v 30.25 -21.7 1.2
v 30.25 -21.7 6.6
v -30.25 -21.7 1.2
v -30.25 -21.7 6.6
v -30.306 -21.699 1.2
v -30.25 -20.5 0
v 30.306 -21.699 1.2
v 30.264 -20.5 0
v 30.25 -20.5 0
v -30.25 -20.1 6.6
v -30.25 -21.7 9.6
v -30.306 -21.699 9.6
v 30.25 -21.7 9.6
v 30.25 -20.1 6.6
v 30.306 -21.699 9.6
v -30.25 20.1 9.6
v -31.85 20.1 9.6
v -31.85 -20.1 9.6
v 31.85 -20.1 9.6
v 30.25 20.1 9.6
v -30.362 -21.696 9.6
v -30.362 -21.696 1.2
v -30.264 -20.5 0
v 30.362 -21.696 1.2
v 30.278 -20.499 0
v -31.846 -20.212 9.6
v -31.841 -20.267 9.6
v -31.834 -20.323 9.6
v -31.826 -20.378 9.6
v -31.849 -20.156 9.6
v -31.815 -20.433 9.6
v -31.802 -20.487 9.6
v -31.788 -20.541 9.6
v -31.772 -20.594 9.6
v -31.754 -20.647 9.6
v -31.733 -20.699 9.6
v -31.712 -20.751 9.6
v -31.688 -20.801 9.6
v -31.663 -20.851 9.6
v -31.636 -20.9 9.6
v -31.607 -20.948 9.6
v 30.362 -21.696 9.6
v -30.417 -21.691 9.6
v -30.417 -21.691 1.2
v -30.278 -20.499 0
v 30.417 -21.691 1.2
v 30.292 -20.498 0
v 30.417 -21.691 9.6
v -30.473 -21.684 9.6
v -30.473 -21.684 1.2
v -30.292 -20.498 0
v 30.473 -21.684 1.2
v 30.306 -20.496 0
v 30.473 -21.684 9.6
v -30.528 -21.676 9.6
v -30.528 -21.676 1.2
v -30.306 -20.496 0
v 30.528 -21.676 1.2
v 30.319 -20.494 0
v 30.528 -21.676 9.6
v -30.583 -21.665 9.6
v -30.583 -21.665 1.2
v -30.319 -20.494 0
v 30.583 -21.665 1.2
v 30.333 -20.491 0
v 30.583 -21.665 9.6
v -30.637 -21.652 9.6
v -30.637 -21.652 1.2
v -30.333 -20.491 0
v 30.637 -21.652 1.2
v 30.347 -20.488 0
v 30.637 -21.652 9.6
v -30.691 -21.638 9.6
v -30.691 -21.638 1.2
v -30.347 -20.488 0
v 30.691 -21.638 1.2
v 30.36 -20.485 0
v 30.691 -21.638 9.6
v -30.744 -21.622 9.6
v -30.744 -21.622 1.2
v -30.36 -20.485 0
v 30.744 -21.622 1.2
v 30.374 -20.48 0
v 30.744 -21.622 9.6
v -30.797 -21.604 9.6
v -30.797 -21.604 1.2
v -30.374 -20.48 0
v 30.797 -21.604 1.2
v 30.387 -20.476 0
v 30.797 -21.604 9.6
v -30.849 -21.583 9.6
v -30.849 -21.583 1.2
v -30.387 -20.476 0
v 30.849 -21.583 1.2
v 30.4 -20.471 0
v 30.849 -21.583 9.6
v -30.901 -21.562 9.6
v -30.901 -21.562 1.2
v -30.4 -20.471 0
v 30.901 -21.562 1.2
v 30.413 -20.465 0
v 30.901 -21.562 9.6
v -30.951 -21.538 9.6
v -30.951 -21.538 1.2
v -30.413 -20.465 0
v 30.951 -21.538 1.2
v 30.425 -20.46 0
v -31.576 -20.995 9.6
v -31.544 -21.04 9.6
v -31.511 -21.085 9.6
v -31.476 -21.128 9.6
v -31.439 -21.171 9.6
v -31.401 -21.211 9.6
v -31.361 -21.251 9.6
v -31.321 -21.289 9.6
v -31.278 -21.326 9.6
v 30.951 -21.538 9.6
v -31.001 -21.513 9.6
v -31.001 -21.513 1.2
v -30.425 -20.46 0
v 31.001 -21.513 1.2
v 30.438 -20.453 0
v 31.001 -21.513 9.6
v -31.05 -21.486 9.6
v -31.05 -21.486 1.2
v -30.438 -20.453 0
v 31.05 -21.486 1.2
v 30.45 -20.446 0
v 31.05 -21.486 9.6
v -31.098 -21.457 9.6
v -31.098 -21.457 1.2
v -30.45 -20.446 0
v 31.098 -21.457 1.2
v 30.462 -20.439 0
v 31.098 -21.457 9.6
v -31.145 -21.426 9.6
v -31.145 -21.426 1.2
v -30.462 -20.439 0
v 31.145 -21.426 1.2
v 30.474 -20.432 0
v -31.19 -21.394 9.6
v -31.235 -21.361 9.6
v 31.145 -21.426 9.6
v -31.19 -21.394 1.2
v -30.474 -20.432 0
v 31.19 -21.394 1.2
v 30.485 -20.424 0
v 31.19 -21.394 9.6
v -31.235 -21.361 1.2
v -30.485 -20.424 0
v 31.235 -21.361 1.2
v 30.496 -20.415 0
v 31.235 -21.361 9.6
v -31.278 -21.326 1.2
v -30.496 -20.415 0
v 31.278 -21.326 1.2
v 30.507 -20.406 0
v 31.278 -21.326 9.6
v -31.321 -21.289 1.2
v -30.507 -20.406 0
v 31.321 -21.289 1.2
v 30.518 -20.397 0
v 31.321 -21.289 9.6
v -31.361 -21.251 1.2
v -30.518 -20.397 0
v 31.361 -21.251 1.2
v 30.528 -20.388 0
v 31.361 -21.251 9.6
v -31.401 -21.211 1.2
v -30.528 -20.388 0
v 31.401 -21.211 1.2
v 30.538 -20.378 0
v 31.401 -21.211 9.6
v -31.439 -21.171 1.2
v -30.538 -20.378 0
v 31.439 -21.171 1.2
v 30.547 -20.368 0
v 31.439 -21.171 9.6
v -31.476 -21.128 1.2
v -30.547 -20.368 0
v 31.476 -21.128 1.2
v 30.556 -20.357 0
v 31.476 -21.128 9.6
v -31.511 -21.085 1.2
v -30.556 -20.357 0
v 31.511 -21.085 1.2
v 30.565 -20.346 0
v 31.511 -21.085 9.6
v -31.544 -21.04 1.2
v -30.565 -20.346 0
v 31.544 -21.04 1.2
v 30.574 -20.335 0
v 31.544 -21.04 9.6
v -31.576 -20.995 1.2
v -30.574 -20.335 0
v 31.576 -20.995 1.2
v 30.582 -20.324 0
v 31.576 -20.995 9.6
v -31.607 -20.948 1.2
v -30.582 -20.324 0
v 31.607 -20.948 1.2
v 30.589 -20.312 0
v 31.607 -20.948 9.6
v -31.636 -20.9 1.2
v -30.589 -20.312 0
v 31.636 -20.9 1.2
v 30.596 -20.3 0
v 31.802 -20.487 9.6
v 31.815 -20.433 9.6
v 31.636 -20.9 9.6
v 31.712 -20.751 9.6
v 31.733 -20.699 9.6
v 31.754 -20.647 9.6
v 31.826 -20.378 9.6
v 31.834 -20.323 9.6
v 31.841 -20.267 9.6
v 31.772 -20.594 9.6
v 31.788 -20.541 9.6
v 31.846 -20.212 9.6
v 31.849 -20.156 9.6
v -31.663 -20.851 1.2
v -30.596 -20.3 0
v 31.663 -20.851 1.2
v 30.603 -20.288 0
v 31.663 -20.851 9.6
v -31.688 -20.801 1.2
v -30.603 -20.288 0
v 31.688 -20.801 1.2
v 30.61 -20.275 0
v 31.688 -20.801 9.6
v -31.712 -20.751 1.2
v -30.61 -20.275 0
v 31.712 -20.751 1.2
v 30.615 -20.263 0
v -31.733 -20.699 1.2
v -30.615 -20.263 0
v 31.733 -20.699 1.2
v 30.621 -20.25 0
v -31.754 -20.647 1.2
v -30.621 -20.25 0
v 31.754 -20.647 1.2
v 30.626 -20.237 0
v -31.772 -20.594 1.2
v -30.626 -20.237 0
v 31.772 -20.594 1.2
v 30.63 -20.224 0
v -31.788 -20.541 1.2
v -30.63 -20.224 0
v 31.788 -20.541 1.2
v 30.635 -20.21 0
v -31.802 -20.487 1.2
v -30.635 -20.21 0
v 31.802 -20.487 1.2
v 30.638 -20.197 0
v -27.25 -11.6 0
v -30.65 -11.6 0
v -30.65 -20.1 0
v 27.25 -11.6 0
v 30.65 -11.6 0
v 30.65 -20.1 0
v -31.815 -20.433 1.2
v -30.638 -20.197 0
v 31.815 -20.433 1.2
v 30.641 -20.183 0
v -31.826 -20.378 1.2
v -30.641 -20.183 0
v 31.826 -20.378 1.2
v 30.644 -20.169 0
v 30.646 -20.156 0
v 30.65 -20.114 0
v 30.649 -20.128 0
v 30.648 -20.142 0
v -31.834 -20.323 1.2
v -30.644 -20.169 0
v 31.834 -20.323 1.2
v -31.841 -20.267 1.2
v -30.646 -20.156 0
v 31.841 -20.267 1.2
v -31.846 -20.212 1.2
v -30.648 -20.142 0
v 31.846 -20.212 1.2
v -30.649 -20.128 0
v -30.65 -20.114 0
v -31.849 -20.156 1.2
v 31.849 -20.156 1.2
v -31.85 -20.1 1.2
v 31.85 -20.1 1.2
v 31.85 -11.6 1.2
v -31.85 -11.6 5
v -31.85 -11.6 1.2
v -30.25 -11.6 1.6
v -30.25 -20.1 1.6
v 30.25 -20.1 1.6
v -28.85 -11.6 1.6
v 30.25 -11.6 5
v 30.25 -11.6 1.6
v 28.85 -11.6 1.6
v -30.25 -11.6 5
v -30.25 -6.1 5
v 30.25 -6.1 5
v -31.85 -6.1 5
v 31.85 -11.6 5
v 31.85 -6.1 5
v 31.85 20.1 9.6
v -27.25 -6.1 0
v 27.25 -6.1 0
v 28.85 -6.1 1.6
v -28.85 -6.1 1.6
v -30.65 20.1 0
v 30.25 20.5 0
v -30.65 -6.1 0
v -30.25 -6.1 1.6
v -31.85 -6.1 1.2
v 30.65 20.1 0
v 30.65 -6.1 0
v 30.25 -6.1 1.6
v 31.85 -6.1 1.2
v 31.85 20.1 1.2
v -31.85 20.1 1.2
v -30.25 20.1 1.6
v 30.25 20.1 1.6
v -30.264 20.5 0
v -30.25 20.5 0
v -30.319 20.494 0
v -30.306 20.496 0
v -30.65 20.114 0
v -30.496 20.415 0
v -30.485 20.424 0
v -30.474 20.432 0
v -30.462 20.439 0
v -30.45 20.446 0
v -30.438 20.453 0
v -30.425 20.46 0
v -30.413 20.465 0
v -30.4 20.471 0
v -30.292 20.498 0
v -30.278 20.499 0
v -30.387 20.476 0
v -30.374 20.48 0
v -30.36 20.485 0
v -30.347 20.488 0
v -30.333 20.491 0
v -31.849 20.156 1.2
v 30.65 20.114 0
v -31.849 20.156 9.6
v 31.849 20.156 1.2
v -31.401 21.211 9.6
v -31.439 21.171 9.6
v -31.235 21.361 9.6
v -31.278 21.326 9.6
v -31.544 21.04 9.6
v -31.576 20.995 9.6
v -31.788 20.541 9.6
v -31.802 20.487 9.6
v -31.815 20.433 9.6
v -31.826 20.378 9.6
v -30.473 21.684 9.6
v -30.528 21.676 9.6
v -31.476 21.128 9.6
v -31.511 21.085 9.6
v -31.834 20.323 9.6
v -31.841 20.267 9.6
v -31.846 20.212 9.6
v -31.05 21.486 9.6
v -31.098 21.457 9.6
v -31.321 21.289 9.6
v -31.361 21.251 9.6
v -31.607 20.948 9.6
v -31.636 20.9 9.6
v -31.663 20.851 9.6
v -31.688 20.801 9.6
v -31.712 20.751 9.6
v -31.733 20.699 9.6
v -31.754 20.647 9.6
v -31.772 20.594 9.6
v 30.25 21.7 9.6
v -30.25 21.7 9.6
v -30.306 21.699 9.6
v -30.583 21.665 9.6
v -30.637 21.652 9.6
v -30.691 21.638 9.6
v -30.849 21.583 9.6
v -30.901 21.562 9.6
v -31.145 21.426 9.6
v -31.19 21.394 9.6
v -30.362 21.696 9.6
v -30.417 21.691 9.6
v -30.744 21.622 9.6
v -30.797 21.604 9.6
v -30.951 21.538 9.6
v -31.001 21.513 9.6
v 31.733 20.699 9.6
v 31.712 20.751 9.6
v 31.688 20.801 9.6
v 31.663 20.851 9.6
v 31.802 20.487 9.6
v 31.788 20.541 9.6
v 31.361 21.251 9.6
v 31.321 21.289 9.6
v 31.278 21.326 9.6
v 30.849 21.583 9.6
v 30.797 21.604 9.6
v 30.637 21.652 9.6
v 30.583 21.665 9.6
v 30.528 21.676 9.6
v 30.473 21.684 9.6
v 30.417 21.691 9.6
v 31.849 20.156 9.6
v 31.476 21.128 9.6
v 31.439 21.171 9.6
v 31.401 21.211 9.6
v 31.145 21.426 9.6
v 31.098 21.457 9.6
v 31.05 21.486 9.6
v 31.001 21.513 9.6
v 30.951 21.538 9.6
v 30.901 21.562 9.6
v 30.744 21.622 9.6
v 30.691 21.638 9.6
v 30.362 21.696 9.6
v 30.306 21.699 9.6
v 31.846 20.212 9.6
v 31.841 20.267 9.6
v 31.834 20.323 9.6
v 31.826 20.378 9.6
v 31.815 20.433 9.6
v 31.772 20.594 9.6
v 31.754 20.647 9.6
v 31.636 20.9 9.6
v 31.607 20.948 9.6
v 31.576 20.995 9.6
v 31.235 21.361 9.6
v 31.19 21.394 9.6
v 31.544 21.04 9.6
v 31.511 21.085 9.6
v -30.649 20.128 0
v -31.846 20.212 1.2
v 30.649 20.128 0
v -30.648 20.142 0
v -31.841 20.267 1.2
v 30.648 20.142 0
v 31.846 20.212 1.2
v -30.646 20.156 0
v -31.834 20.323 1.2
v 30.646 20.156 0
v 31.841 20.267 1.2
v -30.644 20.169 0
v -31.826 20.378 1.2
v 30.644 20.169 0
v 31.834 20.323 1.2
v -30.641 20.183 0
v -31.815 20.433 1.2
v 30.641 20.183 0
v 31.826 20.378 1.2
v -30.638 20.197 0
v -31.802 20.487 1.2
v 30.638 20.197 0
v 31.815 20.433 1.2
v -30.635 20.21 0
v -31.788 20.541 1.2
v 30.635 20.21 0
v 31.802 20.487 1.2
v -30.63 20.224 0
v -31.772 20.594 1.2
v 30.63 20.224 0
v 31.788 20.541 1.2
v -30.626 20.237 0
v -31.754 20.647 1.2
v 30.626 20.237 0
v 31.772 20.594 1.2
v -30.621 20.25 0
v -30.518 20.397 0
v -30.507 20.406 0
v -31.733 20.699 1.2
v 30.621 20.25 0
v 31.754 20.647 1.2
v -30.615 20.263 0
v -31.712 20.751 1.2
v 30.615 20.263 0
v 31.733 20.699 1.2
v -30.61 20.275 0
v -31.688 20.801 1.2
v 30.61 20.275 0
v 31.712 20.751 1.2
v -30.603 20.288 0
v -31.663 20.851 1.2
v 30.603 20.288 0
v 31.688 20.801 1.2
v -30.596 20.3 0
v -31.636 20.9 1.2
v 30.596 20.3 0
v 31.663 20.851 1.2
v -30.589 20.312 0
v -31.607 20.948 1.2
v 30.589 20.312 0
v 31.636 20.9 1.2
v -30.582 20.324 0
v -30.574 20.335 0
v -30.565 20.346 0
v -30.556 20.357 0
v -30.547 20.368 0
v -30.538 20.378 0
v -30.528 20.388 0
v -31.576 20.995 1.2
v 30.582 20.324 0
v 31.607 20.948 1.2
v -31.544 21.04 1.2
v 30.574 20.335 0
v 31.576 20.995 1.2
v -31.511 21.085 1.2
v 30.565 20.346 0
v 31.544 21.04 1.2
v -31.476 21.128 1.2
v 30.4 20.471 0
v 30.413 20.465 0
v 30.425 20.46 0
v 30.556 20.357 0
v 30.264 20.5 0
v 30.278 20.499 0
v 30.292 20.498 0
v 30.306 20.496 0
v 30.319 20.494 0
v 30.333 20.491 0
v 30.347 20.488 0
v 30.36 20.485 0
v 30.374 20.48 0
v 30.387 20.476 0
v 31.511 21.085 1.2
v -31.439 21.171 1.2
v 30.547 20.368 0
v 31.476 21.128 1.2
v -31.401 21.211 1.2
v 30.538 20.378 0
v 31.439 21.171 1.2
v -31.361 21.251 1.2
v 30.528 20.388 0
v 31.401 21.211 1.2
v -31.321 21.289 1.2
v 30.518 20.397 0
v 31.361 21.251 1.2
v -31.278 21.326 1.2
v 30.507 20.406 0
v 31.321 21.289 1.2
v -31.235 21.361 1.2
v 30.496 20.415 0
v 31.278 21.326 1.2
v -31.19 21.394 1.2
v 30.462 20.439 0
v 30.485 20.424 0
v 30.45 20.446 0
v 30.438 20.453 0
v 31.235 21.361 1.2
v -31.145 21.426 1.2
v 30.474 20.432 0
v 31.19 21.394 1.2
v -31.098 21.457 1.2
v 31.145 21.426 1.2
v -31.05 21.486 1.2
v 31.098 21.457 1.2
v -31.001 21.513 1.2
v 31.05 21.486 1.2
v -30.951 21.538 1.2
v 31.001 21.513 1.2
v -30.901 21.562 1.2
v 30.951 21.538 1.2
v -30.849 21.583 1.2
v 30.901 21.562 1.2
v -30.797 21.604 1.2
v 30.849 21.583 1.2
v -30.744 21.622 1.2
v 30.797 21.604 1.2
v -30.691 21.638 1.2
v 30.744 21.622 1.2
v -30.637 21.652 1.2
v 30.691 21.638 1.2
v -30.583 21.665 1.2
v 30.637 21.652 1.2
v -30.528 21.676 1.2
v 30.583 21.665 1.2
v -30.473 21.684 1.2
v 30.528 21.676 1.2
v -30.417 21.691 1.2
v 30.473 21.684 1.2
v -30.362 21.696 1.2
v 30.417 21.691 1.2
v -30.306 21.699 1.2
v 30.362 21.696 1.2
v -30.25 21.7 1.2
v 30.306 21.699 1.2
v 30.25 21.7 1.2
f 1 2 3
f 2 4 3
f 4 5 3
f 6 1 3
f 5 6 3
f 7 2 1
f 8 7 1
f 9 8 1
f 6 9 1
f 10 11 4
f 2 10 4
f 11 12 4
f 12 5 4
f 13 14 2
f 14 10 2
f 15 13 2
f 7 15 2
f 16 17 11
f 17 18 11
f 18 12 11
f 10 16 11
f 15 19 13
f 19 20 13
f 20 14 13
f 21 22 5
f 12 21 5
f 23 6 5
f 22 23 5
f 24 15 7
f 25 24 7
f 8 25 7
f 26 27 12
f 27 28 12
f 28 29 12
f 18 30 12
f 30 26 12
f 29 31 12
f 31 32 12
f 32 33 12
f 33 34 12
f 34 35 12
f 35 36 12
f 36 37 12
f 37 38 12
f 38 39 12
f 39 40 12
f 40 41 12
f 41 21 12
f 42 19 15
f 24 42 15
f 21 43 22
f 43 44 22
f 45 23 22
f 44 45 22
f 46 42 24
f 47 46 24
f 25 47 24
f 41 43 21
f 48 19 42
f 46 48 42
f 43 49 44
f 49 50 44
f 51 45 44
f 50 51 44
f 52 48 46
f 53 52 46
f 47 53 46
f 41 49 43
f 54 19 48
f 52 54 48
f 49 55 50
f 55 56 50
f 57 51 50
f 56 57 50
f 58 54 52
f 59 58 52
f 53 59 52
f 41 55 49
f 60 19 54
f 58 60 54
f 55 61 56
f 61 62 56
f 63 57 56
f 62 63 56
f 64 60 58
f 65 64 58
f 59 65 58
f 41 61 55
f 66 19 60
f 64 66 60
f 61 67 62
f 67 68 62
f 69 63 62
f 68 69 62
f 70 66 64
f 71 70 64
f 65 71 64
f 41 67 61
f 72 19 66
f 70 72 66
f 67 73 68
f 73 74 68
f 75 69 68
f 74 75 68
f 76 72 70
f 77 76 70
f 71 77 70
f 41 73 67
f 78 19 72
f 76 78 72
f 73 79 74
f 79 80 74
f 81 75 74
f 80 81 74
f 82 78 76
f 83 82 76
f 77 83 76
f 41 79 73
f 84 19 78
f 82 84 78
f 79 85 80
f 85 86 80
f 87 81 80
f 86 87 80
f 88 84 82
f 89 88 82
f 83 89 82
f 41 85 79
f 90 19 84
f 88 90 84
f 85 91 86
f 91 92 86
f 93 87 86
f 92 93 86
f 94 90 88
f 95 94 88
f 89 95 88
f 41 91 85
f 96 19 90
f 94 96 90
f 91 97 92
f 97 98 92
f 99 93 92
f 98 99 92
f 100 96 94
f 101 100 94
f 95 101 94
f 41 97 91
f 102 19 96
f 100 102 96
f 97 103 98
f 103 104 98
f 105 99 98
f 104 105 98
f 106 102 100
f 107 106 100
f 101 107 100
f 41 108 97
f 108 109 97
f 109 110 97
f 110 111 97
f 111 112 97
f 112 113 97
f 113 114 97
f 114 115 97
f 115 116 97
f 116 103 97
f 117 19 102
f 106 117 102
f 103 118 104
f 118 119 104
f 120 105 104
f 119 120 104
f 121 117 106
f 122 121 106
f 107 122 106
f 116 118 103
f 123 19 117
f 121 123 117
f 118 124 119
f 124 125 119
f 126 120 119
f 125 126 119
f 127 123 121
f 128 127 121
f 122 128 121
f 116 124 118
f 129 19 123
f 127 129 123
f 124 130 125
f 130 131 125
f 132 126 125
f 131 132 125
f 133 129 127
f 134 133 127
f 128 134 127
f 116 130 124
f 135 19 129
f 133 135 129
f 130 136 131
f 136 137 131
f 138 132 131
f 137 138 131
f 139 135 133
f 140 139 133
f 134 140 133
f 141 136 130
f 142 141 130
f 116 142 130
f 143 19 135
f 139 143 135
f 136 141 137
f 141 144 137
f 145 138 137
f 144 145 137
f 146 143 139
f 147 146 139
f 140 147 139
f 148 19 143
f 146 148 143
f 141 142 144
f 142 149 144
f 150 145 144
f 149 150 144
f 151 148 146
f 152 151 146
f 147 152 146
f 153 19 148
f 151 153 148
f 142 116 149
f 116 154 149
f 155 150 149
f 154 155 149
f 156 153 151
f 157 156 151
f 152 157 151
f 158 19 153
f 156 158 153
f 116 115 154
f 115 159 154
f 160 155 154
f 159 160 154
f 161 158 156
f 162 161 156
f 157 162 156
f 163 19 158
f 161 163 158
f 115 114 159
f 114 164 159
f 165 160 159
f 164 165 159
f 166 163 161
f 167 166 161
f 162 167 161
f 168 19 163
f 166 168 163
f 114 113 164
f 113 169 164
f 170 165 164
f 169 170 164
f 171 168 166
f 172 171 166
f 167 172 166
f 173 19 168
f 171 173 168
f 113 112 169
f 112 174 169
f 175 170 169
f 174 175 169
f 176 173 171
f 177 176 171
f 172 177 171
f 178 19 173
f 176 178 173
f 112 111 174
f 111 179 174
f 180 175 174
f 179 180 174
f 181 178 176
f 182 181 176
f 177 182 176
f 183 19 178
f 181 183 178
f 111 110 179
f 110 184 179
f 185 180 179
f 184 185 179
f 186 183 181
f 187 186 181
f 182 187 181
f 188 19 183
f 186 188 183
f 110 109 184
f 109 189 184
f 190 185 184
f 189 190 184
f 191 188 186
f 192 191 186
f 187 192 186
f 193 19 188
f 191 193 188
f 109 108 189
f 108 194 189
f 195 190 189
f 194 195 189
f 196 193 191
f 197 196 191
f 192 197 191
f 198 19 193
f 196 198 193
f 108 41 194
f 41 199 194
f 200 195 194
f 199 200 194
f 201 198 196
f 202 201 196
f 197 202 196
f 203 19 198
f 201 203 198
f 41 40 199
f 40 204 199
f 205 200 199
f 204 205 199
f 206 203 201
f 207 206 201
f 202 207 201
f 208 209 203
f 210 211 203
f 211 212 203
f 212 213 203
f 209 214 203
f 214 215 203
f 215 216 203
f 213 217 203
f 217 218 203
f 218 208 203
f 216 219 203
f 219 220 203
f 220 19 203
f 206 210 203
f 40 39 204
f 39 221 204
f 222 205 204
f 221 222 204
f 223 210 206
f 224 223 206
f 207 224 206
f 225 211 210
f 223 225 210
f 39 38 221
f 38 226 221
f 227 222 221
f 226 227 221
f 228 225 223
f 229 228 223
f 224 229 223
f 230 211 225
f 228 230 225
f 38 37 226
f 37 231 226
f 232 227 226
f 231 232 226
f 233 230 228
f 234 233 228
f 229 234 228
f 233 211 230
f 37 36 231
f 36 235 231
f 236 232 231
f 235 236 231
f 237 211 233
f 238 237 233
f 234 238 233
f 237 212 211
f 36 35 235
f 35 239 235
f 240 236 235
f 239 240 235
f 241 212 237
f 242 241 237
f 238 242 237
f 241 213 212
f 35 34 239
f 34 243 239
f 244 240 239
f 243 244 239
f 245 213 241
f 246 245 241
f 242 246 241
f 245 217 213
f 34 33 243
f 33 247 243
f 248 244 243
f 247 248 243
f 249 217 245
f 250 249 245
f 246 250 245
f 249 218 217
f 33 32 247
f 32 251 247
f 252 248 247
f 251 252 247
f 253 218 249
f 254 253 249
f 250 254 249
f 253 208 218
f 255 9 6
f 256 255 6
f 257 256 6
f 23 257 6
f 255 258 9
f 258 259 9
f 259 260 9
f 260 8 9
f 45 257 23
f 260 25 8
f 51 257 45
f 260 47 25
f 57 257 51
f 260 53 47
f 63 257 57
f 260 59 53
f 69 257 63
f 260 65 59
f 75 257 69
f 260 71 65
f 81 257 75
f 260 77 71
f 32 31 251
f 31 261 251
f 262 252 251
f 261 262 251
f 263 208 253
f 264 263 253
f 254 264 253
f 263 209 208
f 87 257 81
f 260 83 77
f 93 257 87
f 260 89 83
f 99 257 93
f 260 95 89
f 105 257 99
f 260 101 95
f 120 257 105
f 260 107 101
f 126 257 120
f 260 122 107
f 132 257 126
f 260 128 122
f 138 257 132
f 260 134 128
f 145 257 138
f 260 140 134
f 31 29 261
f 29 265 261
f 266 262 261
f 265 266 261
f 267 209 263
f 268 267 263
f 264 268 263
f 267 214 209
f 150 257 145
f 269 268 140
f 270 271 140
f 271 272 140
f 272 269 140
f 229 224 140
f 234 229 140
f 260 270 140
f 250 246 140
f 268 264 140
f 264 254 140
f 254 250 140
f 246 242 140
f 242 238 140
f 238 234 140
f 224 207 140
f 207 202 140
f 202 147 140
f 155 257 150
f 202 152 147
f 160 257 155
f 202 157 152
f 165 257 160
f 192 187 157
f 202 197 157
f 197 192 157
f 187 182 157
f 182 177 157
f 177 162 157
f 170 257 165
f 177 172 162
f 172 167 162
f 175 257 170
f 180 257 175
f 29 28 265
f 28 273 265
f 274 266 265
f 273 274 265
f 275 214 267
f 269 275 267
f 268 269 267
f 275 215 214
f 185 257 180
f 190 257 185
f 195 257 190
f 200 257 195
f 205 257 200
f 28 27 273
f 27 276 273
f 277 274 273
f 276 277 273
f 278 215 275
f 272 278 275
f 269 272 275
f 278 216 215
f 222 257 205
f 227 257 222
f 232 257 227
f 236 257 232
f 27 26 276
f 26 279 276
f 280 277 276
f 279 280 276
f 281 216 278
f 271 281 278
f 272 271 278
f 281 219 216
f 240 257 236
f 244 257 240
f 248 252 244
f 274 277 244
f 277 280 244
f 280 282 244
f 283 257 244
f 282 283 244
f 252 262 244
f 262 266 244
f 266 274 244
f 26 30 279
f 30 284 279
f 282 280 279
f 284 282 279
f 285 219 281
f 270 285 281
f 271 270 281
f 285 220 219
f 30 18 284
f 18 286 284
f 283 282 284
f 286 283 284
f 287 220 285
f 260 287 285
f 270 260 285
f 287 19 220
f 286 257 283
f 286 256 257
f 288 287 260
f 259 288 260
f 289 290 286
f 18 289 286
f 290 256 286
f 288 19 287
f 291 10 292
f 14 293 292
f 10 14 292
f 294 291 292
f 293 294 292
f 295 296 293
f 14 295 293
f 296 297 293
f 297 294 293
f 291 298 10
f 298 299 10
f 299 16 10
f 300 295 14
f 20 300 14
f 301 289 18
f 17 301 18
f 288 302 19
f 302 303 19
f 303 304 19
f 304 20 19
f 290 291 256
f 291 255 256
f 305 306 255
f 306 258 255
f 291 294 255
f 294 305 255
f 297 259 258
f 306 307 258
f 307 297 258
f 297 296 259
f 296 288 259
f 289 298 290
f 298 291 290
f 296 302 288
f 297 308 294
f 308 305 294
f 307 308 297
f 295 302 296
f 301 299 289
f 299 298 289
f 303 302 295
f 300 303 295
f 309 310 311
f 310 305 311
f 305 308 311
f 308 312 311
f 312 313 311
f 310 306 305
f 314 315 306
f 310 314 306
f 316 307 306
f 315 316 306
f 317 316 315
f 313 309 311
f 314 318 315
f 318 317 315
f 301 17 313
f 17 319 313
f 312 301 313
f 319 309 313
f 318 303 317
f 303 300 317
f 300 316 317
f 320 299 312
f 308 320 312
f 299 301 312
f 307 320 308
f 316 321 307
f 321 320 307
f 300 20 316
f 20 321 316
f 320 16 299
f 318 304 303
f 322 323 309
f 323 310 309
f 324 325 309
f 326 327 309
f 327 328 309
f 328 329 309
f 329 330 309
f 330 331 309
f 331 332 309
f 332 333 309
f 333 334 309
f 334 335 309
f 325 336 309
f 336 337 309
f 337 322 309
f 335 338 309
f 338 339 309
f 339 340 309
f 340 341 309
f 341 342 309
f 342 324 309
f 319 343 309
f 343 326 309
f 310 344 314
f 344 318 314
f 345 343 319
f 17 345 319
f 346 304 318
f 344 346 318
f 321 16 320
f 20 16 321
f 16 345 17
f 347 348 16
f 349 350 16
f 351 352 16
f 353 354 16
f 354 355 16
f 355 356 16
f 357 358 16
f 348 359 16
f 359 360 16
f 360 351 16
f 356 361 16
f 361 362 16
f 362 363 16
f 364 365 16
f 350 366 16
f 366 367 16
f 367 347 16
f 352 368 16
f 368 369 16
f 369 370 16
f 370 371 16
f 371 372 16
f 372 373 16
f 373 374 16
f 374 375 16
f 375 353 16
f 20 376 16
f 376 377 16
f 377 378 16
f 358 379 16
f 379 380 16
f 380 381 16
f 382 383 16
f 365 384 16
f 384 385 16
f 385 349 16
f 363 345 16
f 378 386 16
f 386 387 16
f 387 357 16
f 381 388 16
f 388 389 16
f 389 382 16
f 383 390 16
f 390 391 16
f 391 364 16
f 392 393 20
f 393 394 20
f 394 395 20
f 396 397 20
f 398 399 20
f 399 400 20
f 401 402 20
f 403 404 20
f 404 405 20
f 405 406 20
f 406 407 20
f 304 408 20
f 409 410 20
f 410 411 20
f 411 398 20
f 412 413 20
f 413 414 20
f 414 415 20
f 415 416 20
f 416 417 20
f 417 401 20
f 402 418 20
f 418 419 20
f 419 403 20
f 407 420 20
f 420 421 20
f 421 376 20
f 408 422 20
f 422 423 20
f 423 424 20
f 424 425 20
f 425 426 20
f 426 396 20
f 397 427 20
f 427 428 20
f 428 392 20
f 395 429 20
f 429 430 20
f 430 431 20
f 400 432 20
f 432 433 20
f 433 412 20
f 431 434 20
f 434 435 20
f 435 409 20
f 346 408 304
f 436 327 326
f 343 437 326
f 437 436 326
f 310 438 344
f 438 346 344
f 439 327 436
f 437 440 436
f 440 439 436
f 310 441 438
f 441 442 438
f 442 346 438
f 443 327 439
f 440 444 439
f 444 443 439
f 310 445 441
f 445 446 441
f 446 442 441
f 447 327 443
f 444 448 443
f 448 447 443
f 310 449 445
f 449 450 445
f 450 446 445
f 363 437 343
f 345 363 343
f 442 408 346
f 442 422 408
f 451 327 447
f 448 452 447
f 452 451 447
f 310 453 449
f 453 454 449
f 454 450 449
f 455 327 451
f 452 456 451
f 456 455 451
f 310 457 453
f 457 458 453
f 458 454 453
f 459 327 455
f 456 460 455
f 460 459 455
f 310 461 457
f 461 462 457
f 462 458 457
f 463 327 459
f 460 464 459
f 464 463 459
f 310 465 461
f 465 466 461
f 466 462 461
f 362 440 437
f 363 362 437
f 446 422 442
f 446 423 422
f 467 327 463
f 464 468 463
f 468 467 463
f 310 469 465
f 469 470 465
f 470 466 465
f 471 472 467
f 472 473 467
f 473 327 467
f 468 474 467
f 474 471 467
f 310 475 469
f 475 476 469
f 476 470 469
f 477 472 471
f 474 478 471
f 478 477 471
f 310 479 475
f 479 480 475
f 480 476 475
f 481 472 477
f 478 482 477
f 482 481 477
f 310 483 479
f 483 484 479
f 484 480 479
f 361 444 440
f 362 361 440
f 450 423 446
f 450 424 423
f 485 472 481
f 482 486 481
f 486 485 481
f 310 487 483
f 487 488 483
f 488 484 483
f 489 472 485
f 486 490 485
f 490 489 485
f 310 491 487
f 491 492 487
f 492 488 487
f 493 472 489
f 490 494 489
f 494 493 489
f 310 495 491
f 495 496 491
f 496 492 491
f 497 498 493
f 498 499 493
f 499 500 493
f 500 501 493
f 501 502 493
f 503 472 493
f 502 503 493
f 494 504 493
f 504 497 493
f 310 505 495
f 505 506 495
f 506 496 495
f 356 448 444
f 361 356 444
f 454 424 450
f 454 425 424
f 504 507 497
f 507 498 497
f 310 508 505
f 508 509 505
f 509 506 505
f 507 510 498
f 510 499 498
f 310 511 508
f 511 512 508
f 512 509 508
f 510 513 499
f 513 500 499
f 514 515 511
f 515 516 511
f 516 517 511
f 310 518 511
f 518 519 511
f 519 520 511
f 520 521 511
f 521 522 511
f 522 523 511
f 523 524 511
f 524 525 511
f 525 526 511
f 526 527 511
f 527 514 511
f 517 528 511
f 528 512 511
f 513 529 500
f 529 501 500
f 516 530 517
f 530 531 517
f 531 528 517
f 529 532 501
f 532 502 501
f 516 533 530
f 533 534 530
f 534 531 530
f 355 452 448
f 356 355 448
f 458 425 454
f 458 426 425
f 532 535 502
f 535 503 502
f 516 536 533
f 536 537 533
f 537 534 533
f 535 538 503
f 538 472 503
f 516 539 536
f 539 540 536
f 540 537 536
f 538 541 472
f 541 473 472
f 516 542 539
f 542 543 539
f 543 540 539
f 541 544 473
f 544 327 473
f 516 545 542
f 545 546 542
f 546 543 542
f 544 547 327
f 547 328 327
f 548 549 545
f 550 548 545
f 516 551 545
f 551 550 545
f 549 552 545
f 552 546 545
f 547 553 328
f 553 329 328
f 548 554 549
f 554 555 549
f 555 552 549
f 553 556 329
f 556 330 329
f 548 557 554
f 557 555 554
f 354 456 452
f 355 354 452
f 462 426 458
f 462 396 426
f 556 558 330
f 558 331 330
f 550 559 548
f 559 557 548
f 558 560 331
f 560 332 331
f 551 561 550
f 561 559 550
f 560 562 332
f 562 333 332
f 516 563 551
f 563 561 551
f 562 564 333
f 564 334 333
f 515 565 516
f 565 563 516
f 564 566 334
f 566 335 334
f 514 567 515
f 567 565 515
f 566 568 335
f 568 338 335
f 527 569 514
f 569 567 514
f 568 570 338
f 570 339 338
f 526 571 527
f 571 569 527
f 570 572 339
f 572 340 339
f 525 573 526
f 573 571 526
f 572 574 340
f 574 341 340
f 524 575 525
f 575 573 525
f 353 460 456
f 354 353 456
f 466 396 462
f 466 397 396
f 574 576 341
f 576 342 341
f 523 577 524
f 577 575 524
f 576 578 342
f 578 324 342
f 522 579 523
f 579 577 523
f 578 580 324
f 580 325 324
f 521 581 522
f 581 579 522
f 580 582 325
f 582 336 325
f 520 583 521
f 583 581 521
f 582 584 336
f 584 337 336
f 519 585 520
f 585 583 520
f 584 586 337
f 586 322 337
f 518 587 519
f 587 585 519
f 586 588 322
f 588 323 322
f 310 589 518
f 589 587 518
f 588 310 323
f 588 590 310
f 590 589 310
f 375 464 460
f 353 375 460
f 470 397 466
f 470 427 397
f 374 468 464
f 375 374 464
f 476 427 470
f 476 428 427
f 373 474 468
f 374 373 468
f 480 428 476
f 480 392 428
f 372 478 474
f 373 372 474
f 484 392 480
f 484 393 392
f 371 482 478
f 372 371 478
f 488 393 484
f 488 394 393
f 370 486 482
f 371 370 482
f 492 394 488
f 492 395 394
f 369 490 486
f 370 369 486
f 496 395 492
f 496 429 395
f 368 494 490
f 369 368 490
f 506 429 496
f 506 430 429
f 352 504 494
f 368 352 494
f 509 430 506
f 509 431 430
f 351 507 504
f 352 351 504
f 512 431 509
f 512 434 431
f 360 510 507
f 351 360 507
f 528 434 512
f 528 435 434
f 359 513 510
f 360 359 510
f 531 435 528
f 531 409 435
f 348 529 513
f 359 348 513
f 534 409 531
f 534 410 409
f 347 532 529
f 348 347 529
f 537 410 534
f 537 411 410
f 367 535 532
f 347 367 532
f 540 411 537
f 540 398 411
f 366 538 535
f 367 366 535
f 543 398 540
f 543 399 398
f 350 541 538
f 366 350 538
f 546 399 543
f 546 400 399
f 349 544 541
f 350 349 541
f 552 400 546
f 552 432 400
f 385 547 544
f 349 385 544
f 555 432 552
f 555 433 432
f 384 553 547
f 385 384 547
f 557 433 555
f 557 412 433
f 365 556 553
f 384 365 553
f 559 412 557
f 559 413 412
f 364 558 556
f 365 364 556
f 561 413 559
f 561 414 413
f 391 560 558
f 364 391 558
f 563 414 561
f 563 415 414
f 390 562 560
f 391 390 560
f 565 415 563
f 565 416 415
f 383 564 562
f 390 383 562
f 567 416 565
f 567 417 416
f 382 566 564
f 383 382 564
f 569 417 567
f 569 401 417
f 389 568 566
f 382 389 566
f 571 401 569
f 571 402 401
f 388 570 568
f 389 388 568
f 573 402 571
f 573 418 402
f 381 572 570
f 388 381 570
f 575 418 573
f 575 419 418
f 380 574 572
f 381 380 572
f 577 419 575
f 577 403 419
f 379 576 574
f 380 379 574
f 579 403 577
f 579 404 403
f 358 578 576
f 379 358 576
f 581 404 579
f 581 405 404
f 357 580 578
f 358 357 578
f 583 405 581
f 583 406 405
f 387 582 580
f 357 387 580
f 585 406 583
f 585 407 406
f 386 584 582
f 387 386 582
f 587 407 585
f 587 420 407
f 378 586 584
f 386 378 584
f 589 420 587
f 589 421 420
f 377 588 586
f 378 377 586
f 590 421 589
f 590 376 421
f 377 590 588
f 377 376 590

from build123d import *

# Parameters (mm, degrees)
SKETCH1_W           = 63.7
SKETCH1_H           = 43.4
BOSS_EXTRUDE1_DEPTH = 1.6
SKETCH2_W           = 63.7
SKETCH2_H           = 43.4
SKETCH2_W_2         = 60.5
SKETCH2_H_2         = 40.2
BOSS_EXTRUDE2_DEPTH = 8
SKETCH4_W           = 60.5
SKETCH4_H           = 3
CUT_EXTRUDE1_DEPTH  = 54.421180257
SKETCH5_W           = 2.6
SKETCH5_H           = 5.5
CUT_EXTRUDE2_DEPTH  = 5
CHAMFER1_SIZE       = 2
FILLET1_R           = 1.6
CHAMFER2_SIZE       = 1.2


with BuildPart() as part:
    # Sketch1 → Boss-Extrude1 (new body)
    with BuildSketch(Plane.XY):
        Rectangle(SKETCH1_W, SKETCH1_H)
    extrude(amount=BOSS_EXTRUDE1_DEPTH)

    # Sketch2 → Boss-Extrude2 (add)
    with BuildSketch(Plane.XY.offset(1.6)):
        Rectangle(SKETCH2_W, SKETCH2_H)
        Rectangle(SKETCH2_W_2, SKETCH2_H_2, mode=Mode.SUBTRACT)
    extrude(amount=BOSS_EXTRUDE2_DEPTH)

    # Sketch4 → Cut-Extrude1 (cut, through all)
    with BuildSketch(Plane(origin=(0, -20.1, 0), x_dir=(1, 0, 0), z_dir=(0, 1, 0))):
        with Locations((0, -8.1)):
            Rectangle(SKETCH4_W, SKETCH4_H)
    extrude(amount=-CUT_EXTRUDE1_DEPTH, mode=Mode.SUBTRACT)

    # Sketch5 → Cut-Extrude2 (cut)
    with BuildSketch(Plane(origin=(0, 0, 0), x_dir=(-1, 0, 0), z_dir=(0, 0, -1))):
        with Locations((-30.55, -8.85)):
            Rectangle(SKETCH5_W, SKETCH5_H)
        with Locations((30.55, -8.85)):
            Rectangle(SKETCH5_W, SKETCH5_H)
    extrude(amount=-CUT_EXTRUDE2_DEPTH, mode=Mode.SUBTRACT)

    # Chamfer1
    # the kernel refuses this chamfer: 2 mm, written as the material it takes off along each edge
    with BuildSketch(Plane(origin=(-29.25, -6.1, 0), x_dir=(0.9996219169112968, 0, -0.02749587661058639), z_dir=(0, -1, 0))) as chamfer1_piece_1:
        Polygon((CHAMFER1_SIZE * 0.999621916911, CHAMFER1_SIZE * 0.0274958766106), (-CHAMFER1_SIZE * 0.0274958766106, CHAMFER1_SIZE * 0.999621916911), (0, 0), align=None)
    extrude(amount=5.5, mode=Mode.SUBTRACT)
    with BuildSketch(Plane(origin=(29.25, -6.1, 0), x_dir=(-0.9996219169112968, 0, -0.02749587661058639), z_dir=(0, -1, 0))) as chamfer1_piece_2:
        Polygon((CHAMFER1_SIZE * 0.999621916911, -CHAMFER1_SIZE * 0.0274958766106), (-CHAMFER1_SIZE * 0.0274958766106, -CHAMFER1_SIZE * 0.999621916911), (0, 0), align=None)
    extrude(amount=5.5, mode=Mode.SUBTRACT)

    # Fillet1
    fillet1_edges = [part.edges().sort_by_distance(p)[0] for p in [
        (-31.85, 21.7, 4.8),
        (-31.85, -21.7, 4.8),
        (31.85, -21.7, 4.8),
        (31.85, 21.7, 4.8),
    ]]
    fillet(fillet1_edges, radius=FILLET1_R)

    # Chamfer2
    chamfer2_edges = [part.edges().sort_by_distance(p)[0] for p in [
        (-31.85, 7, 0),
        (0, 21.7, 0),
        (31.85, -15.85, 0),
        (0, -21.7, 0),
        (31.38137085, 21.23137085, 0),
        (31.38137085, -21.23137085, 0),
        (-31.38137085, -21.23137085, 0),
        (-31.38137085, 21.23137085, 0),
        (-31.85, -15.85, 0),
        (31.85, 7, 0),
    ]]
    chamfer(chamfer2_edges, length=CHAMFER2_SIZE)


solid = part.part
